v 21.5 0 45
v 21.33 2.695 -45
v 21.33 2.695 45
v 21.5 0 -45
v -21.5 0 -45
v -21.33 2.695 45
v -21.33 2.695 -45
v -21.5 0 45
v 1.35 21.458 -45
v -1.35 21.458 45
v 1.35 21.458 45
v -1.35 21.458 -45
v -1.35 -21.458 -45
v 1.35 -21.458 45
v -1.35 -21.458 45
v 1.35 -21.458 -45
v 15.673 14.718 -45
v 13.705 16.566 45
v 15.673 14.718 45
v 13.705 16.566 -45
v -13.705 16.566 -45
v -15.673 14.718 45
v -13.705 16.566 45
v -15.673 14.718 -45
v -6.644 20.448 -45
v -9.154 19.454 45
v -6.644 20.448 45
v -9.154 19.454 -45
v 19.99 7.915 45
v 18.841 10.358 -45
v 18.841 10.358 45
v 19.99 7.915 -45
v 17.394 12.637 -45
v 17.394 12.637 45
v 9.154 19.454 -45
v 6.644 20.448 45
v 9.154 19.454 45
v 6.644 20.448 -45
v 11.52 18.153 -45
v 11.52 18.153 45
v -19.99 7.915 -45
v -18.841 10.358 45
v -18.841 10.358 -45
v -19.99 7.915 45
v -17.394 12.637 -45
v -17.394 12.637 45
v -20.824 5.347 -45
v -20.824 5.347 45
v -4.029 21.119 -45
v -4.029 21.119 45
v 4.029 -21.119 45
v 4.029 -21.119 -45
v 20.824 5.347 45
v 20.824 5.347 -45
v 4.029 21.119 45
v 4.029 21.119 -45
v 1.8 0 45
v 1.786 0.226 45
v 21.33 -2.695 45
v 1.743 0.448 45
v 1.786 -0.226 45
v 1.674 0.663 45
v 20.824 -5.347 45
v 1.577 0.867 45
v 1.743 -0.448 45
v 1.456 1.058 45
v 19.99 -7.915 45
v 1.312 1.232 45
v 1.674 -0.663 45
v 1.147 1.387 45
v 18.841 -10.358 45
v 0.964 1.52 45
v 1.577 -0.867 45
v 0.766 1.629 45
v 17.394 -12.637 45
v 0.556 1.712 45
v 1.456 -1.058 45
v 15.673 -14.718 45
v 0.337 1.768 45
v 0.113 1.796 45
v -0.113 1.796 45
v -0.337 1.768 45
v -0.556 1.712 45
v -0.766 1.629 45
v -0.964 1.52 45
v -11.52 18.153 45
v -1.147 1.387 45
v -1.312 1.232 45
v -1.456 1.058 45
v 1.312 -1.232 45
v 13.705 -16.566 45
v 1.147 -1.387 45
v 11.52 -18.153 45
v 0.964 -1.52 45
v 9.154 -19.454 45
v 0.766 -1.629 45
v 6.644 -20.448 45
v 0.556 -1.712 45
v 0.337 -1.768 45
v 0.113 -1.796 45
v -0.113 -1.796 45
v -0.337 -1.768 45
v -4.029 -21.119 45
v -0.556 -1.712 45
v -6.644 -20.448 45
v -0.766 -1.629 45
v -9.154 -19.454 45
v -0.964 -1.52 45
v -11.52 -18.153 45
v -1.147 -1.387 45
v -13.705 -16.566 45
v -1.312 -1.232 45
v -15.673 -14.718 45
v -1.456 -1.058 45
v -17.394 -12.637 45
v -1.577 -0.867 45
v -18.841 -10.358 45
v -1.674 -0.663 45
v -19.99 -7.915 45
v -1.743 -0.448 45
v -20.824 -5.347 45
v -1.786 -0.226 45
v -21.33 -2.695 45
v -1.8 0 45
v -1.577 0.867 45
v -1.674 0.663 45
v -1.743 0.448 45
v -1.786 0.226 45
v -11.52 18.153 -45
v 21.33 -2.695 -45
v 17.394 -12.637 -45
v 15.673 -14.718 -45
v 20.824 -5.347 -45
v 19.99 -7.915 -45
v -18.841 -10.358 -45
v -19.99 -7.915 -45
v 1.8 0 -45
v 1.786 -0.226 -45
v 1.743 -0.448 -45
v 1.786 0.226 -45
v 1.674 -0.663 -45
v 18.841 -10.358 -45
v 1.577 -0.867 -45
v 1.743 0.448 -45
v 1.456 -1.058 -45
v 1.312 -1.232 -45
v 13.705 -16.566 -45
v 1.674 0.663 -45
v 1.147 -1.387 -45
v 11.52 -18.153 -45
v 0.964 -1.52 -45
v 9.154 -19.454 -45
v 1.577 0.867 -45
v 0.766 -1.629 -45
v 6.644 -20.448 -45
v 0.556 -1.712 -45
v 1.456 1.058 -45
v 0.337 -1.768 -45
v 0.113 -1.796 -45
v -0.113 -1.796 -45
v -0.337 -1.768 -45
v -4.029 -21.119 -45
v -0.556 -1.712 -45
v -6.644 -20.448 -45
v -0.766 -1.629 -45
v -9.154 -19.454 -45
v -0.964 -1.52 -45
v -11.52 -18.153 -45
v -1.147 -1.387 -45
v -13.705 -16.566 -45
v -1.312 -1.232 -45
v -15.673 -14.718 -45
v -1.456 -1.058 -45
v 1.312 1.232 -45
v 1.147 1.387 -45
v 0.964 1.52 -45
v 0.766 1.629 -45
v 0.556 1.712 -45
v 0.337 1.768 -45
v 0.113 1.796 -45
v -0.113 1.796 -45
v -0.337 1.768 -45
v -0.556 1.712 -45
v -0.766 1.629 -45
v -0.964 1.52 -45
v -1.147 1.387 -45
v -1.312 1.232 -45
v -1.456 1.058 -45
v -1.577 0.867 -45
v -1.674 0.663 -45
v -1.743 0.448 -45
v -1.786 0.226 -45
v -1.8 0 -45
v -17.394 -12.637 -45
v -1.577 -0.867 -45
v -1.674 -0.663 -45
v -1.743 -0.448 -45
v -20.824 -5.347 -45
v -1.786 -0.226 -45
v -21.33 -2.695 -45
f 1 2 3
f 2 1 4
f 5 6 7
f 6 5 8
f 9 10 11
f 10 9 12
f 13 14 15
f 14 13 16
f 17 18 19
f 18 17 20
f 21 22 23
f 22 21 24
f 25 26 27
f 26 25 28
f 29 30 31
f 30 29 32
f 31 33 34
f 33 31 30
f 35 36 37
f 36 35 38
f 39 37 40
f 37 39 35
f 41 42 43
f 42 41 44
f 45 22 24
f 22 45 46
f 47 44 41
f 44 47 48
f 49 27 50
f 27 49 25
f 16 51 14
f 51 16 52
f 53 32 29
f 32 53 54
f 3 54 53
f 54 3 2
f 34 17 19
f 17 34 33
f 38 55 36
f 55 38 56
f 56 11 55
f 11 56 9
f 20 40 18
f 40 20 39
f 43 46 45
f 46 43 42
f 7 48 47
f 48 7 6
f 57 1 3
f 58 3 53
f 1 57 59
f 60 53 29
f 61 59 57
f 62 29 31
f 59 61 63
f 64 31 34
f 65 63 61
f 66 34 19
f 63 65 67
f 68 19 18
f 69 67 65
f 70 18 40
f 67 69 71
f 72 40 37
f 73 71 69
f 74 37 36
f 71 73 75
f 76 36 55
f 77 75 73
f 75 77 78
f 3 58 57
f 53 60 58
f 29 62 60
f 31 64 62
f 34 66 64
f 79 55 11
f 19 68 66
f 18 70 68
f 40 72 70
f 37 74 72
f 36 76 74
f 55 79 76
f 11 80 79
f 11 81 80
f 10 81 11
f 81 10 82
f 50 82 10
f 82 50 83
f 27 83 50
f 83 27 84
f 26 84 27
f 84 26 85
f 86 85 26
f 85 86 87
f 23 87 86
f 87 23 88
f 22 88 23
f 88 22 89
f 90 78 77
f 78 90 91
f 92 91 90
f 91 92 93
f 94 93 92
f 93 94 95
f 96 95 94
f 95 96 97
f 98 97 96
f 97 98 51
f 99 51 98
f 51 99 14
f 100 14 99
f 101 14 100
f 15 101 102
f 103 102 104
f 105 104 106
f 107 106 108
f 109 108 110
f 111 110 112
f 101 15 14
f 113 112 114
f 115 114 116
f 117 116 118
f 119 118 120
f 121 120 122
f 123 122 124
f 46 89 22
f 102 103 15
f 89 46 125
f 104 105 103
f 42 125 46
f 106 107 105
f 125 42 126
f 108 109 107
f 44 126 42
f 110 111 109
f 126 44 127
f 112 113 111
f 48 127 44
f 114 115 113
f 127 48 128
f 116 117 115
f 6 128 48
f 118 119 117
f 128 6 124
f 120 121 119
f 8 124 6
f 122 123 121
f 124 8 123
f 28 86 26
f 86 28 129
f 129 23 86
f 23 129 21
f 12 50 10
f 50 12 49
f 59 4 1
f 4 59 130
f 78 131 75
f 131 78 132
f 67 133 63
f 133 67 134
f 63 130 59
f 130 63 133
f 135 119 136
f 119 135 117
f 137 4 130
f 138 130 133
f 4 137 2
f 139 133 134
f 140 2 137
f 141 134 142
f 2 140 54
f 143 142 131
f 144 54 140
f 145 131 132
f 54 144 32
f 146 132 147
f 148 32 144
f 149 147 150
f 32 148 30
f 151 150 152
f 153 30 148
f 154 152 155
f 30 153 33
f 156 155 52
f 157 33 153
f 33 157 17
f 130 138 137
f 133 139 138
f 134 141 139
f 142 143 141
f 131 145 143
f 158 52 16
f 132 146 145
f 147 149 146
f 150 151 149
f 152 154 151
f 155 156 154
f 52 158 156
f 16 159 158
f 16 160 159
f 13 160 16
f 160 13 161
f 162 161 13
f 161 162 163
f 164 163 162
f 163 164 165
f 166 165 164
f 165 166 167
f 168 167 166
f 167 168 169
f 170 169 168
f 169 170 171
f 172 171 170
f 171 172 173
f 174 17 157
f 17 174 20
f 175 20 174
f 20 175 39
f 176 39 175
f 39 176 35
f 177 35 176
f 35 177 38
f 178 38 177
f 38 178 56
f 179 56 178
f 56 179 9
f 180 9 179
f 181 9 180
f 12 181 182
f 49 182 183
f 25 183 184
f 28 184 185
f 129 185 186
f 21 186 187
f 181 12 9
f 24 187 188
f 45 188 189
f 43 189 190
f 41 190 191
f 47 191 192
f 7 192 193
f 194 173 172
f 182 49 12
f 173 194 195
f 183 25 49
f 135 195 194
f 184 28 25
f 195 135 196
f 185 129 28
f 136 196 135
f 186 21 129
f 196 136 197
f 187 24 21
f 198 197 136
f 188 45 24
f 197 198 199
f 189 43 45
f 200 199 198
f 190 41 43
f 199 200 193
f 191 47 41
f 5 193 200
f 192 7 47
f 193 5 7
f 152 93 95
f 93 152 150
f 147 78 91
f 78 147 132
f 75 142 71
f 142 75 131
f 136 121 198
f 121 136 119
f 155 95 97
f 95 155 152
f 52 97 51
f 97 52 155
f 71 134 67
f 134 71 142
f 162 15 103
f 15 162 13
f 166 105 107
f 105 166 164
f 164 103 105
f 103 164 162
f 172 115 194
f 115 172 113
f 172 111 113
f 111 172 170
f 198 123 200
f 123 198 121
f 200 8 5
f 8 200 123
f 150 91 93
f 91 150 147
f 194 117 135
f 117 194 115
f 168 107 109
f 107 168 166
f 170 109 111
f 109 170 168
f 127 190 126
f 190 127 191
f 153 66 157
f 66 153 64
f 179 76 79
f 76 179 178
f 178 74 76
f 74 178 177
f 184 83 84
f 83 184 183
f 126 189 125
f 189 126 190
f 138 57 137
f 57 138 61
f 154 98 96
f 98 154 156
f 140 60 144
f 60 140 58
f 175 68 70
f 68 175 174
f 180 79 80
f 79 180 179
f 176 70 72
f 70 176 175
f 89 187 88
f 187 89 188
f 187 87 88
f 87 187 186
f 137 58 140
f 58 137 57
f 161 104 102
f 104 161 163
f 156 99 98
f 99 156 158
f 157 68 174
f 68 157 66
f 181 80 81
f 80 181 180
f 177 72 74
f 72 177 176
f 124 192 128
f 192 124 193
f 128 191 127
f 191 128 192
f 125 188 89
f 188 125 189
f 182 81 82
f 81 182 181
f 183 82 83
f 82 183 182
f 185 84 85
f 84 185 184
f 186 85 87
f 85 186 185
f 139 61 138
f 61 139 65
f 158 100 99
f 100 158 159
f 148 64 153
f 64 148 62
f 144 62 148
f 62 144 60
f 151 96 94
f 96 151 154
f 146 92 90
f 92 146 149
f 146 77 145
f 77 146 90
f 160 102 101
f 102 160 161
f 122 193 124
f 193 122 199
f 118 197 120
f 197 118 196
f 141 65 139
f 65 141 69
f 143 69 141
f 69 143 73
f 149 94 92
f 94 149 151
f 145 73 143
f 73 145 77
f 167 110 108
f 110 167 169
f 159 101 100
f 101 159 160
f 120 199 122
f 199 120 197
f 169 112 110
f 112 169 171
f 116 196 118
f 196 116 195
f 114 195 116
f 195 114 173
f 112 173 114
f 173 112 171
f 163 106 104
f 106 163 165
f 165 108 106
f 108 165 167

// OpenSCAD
$fn = 50;


difference() {
	union() {
		translate(v = [0, 0, -45.0000000000]) {
			cylinder(h = 90, r = 21.5000000000);
		}
	}
	union() {
		translate(v = [0, 0, -100.0000000000]) {
			cylinder(h = 200, r = 1.8000000000);
		}
	}
}
